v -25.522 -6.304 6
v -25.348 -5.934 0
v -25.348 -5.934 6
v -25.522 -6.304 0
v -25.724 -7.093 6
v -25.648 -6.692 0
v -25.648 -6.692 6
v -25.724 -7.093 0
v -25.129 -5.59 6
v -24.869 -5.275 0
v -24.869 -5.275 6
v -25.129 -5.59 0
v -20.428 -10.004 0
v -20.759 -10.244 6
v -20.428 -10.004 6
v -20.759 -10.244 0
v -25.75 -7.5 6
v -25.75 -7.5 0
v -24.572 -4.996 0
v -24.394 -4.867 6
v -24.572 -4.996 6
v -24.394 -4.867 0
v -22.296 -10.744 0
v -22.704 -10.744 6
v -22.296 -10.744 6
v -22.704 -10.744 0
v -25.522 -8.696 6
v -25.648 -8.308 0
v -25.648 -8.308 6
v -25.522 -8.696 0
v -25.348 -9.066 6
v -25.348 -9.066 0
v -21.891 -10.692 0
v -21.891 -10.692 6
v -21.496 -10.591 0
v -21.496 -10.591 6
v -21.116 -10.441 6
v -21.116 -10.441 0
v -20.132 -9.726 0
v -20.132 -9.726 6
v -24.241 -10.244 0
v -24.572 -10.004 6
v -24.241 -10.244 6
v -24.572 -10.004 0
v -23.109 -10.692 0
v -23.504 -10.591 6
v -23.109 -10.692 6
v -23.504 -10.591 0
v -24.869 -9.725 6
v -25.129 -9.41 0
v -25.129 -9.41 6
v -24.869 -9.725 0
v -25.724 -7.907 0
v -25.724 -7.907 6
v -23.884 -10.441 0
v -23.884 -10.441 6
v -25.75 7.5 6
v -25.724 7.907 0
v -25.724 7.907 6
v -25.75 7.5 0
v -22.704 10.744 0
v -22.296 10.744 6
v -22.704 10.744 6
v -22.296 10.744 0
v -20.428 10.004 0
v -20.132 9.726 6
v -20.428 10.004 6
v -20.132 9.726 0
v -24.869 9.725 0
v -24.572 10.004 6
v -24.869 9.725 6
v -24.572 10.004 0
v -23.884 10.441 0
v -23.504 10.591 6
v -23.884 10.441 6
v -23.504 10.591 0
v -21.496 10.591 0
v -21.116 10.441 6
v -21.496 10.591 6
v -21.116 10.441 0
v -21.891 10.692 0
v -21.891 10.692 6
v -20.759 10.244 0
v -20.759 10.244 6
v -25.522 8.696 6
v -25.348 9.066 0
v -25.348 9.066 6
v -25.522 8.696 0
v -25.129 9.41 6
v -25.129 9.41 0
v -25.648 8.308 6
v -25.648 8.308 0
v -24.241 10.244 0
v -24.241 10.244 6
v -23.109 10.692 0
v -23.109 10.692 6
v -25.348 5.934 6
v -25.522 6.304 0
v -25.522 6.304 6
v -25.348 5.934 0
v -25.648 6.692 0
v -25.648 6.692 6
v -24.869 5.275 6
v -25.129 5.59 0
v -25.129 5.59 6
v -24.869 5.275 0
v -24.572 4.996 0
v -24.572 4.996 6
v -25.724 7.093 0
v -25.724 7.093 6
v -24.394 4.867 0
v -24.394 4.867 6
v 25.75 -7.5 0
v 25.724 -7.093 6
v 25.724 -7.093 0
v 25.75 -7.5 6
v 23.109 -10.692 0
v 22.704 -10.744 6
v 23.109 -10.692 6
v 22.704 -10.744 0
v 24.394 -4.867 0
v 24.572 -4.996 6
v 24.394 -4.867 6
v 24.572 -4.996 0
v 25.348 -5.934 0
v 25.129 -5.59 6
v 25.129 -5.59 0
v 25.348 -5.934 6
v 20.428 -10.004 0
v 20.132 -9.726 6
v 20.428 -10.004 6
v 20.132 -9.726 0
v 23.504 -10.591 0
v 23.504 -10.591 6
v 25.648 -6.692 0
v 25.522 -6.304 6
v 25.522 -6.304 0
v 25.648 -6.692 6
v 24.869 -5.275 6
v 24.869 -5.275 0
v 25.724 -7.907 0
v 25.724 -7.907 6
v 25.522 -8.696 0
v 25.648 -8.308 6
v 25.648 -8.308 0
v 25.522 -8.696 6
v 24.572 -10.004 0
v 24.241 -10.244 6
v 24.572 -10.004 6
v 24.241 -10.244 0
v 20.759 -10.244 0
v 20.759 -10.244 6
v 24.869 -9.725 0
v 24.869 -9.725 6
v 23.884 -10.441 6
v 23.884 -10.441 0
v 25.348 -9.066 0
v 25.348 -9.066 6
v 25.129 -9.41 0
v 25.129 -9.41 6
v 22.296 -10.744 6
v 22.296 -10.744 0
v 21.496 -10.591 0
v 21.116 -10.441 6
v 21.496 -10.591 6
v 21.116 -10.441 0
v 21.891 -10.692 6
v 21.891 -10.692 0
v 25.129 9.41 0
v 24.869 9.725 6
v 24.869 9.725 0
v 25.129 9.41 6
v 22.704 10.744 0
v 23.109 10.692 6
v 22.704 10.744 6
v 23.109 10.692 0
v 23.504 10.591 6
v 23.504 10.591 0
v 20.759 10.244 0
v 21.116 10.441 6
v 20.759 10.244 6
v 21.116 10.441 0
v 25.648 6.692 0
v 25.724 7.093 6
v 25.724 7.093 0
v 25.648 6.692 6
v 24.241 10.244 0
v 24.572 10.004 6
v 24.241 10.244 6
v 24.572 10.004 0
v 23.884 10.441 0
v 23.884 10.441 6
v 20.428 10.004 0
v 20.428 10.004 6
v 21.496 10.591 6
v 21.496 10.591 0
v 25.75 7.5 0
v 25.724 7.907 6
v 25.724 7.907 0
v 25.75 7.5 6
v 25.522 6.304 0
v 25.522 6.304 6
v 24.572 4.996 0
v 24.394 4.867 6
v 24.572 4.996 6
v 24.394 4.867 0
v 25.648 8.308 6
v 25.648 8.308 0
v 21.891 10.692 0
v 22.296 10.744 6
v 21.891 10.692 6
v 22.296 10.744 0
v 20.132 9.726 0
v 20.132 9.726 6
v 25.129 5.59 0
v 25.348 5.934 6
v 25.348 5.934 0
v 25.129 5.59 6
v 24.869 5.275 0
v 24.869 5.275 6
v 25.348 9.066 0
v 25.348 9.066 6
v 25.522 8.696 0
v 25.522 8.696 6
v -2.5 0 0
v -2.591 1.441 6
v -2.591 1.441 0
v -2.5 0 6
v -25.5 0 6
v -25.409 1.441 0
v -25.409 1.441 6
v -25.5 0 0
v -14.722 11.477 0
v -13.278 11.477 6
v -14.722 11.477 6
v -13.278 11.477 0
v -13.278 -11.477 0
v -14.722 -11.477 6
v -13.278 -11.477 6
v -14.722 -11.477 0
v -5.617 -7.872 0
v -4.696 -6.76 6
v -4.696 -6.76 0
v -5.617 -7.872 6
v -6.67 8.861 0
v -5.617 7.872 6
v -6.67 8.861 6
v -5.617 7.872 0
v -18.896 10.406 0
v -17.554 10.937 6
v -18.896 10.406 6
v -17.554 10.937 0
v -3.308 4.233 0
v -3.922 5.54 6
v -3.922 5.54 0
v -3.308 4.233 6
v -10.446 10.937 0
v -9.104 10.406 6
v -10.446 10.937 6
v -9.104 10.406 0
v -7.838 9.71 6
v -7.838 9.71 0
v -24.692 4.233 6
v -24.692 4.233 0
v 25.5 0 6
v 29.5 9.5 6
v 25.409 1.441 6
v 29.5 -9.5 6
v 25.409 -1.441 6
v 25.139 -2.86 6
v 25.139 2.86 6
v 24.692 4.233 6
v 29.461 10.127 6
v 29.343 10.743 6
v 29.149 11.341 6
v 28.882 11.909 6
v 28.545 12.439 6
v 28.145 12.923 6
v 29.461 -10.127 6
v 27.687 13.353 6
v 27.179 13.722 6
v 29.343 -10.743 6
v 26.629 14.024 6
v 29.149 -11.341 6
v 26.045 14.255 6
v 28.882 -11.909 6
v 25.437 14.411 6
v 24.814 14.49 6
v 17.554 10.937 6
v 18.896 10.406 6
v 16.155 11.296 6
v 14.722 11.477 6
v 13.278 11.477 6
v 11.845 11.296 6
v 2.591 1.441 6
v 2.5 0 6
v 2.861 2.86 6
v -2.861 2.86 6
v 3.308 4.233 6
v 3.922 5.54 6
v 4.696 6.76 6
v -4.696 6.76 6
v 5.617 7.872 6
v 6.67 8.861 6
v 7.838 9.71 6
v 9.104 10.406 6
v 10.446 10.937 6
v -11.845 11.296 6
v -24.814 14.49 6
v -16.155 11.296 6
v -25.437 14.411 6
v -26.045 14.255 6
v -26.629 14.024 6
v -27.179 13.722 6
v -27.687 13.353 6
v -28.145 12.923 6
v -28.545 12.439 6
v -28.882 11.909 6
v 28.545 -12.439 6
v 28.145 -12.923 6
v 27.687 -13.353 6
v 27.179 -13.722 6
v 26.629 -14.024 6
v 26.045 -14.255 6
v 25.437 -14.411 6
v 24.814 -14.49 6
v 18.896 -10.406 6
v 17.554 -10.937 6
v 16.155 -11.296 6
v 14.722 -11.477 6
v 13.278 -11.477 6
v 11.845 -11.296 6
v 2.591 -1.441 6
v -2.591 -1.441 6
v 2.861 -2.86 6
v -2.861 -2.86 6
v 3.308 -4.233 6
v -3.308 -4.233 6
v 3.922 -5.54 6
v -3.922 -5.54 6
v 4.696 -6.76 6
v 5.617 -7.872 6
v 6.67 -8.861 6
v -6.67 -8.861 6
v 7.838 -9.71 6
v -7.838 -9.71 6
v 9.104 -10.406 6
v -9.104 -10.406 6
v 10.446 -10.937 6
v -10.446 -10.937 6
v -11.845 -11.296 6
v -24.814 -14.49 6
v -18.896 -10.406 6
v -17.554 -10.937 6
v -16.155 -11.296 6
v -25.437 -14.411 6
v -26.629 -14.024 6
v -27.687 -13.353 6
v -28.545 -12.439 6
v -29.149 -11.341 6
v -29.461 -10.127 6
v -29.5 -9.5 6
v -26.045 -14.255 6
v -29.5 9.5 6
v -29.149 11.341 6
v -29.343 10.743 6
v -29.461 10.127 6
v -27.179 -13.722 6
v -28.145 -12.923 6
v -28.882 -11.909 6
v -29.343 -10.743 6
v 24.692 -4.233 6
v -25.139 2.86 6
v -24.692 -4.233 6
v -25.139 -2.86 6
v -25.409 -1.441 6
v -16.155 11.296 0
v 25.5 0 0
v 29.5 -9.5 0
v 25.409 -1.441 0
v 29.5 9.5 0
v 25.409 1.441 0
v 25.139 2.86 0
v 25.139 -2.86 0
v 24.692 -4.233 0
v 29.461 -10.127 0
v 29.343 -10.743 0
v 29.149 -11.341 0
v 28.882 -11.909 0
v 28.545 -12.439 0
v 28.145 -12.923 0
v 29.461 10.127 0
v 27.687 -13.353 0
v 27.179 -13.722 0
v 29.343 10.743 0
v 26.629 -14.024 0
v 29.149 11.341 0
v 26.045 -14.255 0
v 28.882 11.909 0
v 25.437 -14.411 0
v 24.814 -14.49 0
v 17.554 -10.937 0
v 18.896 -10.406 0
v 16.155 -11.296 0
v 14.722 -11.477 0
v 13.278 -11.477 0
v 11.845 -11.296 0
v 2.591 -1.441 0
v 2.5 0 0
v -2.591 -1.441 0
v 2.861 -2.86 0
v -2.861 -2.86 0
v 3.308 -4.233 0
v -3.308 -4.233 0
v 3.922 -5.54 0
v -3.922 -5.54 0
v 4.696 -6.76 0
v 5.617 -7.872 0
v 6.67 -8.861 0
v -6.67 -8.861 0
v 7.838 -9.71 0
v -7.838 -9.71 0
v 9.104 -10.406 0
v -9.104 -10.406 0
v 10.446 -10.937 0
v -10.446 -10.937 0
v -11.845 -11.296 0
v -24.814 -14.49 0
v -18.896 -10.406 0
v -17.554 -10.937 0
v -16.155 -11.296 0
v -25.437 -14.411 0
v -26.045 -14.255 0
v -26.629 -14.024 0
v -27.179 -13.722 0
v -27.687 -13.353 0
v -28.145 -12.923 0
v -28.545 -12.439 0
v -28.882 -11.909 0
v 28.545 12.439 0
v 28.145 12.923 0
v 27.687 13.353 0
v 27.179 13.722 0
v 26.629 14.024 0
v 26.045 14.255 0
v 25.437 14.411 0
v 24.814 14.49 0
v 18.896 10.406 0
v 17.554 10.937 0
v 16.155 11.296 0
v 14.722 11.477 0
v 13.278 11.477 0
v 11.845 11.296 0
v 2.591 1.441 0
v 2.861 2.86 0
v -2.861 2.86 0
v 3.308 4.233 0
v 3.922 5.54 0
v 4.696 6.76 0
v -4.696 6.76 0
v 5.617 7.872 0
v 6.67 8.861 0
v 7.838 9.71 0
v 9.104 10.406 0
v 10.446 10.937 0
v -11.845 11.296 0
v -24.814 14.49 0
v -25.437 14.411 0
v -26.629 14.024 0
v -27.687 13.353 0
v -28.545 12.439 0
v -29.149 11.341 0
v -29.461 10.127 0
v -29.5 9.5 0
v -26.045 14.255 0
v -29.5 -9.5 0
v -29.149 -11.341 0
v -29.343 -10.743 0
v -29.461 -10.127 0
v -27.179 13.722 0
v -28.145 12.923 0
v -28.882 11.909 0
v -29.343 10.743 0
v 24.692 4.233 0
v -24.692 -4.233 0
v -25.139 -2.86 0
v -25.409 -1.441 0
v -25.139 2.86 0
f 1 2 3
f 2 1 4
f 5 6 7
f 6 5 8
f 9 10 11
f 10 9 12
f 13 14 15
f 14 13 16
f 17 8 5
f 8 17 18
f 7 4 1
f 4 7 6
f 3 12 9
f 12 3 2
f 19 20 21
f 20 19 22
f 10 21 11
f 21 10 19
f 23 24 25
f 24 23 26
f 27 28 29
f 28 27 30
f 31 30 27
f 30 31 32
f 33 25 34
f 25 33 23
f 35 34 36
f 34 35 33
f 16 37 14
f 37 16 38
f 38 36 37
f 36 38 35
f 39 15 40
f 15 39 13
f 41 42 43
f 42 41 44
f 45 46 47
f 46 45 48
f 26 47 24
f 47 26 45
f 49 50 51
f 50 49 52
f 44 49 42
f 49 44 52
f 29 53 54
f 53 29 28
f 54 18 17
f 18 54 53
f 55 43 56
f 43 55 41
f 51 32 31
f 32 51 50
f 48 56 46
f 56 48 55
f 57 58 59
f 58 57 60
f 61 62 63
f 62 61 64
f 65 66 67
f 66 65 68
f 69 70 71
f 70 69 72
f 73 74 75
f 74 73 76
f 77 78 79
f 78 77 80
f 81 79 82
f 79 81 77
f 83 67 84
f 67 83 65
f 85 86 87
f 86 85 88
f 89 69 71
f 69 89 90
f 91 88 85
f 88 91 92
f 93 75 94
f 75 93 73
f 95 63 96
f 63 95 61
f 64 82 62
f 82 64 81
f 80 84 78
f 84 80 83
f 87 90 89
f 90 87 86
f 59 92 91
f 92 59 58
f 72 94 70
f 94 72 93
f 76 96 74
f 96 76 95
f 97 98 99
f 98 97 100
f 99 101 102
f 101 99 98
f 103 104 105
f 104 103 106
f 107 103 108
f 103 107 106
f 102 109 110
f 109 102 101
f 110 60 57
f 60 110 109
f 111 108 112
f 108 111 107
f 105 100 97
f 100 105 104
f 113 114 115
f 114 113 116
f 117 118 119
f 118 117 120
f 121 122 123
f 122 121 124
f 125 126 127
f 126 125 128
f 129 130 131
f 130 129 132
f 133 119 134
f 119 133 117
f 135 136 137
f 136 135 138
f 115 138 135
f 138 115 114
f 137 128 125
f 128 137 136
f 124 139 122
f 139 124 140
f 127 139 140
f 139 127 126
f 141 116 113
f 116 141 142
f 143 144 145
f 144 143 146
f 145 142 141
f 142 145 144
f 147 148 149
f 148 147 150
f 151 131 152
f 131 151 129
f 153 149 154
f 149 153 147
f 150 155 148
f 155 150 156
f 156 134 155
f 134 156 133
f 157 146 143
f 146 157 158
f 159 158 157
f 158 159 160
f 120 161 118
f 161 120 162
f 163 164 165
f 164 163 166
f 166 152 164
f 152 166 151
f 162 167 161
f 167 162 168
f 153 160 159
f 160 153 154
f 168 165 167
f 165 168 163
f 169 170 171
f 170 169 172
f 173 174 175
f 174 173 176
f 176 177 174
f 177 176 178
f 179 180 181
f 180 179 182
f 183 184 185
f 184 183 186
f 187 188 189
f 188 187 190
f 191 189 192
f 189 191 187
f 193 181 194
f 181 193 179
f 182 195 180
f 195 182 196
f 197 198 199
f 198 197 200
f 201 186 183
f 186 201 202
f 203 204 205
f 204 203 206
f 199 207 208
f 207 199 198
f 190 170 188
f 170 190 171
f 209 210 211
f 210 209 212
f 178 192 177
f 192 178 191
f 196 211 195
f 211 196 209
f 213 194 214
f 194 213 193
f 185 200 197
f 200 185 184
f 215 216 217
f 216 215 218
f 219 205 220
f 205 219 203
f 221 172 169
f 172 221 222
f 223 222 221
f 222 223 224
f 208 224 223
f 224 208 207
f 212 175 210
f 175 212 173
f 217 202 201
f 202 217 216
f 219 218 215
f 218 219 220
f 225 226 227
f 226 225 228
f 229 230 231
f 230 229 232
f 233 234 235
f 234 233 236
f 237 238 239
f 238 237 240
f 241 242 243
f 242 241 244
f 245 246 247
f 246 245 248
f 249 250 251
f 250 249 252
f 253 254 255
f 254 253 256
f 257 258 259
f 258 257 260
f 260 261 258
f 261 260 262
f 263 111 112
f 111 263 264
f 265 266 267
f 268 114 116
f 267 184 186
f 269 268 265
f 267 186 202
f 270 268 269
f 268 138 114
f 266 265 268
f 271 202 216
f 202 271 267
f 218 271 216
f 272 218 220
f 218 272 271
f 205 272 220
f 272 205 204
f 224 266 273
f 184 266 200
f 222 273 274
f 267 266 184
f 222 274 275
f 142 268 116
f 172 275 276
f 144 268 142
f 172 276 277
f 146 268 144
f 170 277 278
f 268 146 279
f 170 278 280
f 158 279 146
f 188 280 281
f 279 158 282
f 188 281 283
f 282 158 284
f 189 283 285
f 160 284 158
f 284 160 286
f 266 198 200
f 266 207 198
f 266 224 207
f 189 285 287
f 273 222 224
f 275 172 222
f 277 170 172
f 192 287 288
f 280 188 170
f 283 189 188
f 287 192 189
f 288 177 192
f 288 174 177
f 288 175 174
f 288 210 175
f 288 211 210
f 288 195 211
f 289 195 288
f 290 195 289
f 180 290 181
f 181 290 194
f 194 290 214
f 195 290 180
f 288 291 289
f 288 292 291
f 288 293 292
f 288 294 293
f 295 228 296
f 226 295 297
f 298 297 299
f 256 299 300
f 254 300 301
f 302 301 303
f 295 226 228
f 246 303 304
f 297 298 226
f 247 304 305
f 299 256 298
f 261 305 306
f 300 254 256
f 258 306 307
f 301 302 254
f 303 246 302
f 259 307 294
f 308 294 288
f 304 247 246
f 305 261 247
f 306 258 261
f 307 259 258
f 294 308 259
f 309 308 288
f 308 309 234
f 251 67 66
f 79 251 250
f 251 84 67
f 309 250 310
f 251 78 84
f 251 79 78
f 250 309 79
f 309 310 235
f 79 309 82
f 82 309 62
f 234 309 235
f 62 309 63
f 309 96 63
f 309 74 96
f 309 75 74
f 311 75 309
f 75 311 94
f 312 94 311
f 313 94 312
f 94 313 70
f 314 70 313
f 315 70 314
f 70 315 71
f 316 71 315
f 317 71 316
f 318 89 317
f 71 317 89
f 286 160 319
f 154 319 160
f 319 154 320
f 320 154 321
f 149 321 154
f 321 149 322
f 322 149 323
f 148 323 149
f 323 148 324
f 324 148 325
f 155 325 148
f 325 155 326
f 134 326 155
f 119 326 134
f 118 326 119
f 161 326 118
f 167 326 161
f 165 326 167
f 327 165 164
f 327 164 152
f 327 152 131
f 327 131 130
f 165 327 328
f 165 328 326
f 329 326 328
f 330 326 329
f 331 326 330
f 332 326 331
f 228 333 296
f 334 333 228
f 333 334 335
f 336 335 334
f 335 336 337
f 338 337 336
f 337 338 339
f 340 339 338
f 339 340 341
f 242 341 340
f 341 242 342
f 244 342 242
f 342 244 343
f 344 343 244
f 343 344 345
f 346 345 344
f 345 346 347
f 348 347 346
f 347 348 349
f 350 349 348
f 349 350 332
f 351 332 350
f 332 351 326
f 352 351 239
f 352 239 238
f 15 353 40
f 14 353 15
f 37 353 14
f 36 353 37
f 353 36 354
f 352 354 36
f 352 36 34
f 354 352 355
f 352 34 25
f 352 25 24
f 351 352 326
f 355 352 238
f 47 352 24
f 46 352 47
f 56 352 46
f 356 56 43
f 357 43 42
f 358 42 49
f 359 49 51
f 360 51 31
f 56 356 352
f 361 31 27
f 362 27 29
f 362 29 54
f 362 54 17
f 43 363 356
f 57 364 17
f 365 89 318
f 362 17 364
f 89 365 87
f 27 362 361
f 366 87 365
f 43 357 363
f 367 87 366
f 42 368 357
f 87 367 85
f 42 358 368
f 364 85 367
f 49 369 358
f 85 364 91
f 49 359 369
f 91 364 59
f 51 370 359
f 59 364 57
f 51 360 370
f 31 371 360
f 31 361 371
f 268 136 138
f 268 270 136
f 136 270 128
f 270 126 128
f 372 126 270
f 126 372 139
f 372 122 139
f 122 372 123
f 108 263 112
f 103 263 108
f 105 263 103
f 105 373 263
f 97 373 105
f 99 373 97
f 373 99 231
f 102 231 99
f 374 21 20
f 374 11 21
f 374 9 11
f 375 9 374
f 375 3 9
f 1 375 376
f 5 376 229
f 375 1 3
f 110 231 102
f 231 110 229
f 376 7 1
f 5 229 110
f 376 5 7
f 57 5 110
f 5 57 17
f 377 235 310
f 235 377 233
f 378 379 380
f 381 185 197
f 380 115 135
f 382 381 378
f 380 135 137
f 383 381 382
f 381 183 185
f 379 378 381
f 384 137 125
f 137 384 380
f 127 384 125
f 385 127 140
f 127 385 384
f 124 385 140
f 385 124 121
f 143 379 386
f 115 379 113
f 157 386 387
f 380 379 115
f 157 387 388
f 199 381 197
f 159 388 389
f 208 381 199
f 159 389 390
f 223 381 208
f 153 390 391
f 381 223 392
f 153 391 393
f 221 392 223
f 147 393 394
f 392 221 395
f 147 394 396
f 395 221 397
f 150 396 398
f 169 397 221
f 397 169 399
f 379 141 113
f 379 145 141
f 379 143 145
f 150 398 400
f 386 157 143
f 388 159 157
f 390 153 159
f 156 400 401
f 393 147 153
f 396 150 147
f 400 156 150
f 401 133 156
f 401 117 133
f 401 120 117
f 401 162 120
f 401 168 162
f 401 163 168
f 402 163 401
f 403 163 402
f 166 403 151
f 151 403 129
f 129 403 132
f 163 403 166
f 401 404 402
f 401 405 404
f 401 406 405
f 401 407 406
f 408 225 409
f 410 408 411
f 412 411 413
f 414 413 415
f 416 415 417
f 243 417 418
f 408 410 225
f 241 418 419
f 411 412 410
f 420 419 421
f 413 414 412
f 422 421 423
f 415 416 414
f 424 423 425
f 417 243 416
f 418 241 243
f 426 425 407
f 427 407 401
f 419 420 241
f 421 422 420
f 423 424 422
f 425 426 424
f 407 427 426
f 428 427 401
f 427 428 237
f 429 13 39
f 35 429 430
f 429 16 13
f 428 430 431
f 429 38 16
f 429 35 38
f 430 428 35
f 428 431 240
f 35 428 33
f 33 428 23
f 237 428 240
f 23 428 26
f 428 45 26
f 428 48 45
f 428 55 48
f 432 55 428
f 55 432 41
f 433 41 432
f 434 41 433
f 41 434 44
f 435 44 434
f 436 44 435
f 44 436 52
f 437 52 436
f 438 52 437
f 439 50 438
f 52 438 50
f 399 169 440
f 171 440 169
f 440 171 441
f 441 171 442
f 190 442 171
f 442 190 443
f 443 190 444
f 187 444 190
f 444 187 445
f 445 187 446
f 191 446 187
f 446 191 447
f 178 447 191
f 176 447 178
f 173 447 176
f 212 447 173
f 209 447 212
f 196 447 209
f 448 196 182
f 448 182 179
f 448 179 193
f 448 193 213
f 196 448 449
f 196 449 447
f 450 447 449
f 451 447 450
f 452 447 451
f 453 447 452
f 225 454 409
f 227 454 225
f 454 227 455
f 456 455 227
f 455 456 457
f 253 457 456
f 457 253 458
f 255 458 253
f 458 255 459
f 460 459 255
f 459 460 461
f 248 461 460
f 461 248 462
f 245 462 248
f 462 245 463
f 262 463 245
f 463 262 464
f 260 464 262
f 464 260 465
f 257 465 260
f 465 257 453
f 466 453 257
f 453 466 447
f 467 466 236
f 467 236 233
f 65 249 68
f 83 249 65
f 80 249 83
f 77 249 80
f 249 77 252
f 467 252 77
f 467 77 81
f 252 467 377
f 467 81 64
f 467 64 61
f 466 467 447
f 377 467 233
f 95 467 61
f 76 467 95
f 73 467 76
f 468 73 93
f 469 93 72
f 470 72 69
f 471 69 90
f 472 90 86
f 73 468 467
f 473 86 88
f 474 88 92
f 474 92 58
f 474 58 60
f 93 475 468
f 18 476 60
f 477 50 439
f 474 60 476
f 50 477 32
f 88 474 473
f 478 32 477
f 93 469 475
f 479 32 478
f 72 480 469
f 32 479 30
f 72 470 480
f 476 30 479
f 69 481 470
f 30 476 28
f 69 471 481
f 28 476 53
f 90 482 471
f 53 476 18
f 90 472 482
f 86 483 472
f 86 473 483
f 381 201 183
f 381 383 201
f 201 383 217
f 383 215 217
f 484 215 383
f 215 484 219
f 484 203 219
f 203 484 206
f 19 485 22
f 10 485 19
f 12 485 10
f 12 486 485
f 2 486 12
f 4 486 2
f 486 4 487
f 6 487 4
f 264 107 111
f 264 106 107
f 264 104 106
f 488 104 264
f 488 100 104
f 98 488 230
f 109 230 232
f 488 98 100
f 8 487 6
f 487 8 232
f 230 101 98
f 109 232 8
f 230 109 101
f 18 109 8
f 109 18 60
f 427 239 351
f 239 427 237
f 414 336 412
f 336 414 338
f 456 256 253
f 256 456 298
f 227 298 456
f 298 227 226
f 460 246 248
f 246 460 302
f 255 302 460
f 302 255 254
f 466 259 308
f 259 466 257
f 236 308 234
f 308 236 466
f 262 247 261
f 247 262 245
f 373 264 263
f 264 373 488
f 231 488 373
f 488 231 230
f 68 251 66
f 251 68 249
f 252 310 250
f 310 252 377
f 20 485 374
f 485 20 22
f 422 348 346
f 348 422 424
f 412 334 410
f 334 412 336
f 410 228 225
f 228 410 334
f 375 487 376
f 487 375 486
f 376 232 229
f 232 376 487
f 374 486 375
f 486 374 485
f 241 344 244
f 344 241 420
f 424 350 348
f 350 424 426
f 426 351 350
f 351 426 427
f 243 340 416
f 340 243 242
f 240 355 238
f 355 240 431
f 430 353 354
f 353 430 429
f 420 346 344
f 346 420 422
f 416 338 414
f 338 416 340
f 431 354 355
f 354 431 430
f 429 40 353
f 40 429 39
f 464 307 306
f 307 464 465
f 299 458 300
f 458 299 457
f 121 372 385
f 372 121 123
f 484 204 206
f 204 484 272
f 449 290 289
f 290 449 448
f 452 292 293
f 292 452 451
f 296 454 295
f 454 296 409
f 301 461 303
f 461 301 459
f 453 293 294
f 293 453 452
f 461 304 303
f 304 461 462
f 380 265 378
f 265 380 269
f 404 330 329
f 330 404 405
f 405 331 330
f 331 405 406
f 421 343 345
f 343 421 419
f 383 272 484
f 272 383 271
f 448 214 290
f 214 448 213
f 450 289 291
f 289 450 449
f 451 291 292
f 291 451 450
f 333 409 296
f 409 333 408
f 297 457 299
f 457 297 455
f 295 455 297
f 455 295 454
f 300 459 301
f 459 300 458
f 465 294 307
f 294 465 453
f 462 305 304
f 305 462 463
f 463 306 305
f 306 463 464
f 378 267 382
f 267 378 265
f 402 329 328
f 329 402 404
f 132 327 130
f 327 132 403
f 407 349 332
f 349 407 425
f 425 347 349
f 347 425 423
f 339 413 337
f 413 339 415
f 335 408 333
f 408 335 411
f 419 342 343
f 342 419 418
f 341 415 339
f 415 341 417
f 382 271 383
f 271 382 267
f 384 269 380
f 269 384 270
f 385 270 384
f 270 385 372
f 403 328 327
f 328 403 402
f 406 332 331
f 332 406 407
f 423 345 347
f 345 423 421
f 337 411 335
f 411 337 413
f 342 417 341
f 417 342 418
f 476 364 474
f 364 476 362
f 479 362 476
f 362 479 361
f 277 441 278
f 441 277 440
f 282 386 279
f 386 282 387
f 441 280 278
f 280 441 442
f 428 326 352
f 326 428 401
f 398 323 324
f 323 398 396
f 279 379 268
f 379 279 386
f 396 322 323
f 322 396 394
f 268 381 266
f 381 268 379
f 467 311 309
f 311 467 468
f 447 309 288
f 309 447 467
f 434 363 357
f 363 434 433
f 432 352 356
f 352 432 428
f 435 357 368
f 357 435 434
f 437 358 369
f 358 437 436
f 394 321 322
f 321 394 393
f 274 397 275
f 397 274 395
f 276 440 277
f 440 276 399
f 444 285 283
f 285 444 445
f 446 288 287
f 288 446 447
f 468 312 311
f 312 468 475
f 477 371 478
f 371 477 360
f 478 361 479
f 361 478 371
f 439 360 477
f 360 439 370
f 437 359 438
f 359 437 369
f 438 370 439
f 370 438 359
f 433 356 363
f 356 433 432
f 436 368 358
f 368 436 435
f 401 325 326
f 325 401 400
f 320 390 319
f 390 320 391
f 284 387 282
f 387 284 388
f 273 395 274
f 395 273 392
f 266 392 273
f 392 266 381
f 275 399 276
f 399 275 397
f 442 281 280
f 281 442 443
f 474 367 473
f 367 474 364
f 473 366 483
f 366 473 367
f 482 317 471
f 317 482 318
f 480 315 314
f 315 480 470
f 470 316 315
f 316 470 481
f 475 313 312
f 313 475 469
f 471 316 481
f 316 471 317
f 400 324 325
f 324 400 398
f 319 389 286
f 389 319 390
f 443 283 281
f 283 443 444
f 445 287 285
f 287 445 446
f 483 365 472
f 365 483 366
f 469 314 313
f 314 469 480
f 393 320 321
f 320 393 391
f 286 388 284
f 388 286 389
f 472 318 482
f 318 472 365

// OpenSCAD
$fn = 50;


difference() {
	union() {
		hull() {
			translate(v = [-24.5000000000, 9.5000000000, 0]) {
				cylinder(h = 6, r = 5);
			}
			translate(v = [24.5000000000, 9.5000000000, 0]) {
				cylinder(h = 6, r = 5);
			}
			translate(v = [-24.5000000000, -9.5000000000, 0]) {
				cylinder(h = 6, r = 5);
			}
			translate(v = [24.5000000000, -9.5000000000, 0]) {
				cylinder(h = 6, r = 5);
			}
		}
	}
	union() {
		#translate(v = [-22.5000000000, -7.5000000000, -100.0000000000]) {
			cylinder(h = 200, r = 3.2500000000);
		}
		#translate(v = [-22.5000000000, 7.5000000000, -100.0000000000]) {
			cylinder(h = 200, r = 3.2500000000);
		}
		#translate(v = [22.5000000000, -7.5000000000, -100.0000000000]) {
			cylinder(h = 200, r = 3.2500000000);
		}
		#translate(v = [22.5000000000, 7.5000000000, -100.0000000000]) {
			cylinder(h = 200, r = 3.2500000000);
		}
		#translate(v = [-14.0000000000, 0, 0]) {
			cylinder(h = 6, r = 11.5000000000);
		}
		#translate(v = [14.0000000000, 0, 0]) {
			cylinder(h = 6, r = 11.5000000000);
		}
	}
}
